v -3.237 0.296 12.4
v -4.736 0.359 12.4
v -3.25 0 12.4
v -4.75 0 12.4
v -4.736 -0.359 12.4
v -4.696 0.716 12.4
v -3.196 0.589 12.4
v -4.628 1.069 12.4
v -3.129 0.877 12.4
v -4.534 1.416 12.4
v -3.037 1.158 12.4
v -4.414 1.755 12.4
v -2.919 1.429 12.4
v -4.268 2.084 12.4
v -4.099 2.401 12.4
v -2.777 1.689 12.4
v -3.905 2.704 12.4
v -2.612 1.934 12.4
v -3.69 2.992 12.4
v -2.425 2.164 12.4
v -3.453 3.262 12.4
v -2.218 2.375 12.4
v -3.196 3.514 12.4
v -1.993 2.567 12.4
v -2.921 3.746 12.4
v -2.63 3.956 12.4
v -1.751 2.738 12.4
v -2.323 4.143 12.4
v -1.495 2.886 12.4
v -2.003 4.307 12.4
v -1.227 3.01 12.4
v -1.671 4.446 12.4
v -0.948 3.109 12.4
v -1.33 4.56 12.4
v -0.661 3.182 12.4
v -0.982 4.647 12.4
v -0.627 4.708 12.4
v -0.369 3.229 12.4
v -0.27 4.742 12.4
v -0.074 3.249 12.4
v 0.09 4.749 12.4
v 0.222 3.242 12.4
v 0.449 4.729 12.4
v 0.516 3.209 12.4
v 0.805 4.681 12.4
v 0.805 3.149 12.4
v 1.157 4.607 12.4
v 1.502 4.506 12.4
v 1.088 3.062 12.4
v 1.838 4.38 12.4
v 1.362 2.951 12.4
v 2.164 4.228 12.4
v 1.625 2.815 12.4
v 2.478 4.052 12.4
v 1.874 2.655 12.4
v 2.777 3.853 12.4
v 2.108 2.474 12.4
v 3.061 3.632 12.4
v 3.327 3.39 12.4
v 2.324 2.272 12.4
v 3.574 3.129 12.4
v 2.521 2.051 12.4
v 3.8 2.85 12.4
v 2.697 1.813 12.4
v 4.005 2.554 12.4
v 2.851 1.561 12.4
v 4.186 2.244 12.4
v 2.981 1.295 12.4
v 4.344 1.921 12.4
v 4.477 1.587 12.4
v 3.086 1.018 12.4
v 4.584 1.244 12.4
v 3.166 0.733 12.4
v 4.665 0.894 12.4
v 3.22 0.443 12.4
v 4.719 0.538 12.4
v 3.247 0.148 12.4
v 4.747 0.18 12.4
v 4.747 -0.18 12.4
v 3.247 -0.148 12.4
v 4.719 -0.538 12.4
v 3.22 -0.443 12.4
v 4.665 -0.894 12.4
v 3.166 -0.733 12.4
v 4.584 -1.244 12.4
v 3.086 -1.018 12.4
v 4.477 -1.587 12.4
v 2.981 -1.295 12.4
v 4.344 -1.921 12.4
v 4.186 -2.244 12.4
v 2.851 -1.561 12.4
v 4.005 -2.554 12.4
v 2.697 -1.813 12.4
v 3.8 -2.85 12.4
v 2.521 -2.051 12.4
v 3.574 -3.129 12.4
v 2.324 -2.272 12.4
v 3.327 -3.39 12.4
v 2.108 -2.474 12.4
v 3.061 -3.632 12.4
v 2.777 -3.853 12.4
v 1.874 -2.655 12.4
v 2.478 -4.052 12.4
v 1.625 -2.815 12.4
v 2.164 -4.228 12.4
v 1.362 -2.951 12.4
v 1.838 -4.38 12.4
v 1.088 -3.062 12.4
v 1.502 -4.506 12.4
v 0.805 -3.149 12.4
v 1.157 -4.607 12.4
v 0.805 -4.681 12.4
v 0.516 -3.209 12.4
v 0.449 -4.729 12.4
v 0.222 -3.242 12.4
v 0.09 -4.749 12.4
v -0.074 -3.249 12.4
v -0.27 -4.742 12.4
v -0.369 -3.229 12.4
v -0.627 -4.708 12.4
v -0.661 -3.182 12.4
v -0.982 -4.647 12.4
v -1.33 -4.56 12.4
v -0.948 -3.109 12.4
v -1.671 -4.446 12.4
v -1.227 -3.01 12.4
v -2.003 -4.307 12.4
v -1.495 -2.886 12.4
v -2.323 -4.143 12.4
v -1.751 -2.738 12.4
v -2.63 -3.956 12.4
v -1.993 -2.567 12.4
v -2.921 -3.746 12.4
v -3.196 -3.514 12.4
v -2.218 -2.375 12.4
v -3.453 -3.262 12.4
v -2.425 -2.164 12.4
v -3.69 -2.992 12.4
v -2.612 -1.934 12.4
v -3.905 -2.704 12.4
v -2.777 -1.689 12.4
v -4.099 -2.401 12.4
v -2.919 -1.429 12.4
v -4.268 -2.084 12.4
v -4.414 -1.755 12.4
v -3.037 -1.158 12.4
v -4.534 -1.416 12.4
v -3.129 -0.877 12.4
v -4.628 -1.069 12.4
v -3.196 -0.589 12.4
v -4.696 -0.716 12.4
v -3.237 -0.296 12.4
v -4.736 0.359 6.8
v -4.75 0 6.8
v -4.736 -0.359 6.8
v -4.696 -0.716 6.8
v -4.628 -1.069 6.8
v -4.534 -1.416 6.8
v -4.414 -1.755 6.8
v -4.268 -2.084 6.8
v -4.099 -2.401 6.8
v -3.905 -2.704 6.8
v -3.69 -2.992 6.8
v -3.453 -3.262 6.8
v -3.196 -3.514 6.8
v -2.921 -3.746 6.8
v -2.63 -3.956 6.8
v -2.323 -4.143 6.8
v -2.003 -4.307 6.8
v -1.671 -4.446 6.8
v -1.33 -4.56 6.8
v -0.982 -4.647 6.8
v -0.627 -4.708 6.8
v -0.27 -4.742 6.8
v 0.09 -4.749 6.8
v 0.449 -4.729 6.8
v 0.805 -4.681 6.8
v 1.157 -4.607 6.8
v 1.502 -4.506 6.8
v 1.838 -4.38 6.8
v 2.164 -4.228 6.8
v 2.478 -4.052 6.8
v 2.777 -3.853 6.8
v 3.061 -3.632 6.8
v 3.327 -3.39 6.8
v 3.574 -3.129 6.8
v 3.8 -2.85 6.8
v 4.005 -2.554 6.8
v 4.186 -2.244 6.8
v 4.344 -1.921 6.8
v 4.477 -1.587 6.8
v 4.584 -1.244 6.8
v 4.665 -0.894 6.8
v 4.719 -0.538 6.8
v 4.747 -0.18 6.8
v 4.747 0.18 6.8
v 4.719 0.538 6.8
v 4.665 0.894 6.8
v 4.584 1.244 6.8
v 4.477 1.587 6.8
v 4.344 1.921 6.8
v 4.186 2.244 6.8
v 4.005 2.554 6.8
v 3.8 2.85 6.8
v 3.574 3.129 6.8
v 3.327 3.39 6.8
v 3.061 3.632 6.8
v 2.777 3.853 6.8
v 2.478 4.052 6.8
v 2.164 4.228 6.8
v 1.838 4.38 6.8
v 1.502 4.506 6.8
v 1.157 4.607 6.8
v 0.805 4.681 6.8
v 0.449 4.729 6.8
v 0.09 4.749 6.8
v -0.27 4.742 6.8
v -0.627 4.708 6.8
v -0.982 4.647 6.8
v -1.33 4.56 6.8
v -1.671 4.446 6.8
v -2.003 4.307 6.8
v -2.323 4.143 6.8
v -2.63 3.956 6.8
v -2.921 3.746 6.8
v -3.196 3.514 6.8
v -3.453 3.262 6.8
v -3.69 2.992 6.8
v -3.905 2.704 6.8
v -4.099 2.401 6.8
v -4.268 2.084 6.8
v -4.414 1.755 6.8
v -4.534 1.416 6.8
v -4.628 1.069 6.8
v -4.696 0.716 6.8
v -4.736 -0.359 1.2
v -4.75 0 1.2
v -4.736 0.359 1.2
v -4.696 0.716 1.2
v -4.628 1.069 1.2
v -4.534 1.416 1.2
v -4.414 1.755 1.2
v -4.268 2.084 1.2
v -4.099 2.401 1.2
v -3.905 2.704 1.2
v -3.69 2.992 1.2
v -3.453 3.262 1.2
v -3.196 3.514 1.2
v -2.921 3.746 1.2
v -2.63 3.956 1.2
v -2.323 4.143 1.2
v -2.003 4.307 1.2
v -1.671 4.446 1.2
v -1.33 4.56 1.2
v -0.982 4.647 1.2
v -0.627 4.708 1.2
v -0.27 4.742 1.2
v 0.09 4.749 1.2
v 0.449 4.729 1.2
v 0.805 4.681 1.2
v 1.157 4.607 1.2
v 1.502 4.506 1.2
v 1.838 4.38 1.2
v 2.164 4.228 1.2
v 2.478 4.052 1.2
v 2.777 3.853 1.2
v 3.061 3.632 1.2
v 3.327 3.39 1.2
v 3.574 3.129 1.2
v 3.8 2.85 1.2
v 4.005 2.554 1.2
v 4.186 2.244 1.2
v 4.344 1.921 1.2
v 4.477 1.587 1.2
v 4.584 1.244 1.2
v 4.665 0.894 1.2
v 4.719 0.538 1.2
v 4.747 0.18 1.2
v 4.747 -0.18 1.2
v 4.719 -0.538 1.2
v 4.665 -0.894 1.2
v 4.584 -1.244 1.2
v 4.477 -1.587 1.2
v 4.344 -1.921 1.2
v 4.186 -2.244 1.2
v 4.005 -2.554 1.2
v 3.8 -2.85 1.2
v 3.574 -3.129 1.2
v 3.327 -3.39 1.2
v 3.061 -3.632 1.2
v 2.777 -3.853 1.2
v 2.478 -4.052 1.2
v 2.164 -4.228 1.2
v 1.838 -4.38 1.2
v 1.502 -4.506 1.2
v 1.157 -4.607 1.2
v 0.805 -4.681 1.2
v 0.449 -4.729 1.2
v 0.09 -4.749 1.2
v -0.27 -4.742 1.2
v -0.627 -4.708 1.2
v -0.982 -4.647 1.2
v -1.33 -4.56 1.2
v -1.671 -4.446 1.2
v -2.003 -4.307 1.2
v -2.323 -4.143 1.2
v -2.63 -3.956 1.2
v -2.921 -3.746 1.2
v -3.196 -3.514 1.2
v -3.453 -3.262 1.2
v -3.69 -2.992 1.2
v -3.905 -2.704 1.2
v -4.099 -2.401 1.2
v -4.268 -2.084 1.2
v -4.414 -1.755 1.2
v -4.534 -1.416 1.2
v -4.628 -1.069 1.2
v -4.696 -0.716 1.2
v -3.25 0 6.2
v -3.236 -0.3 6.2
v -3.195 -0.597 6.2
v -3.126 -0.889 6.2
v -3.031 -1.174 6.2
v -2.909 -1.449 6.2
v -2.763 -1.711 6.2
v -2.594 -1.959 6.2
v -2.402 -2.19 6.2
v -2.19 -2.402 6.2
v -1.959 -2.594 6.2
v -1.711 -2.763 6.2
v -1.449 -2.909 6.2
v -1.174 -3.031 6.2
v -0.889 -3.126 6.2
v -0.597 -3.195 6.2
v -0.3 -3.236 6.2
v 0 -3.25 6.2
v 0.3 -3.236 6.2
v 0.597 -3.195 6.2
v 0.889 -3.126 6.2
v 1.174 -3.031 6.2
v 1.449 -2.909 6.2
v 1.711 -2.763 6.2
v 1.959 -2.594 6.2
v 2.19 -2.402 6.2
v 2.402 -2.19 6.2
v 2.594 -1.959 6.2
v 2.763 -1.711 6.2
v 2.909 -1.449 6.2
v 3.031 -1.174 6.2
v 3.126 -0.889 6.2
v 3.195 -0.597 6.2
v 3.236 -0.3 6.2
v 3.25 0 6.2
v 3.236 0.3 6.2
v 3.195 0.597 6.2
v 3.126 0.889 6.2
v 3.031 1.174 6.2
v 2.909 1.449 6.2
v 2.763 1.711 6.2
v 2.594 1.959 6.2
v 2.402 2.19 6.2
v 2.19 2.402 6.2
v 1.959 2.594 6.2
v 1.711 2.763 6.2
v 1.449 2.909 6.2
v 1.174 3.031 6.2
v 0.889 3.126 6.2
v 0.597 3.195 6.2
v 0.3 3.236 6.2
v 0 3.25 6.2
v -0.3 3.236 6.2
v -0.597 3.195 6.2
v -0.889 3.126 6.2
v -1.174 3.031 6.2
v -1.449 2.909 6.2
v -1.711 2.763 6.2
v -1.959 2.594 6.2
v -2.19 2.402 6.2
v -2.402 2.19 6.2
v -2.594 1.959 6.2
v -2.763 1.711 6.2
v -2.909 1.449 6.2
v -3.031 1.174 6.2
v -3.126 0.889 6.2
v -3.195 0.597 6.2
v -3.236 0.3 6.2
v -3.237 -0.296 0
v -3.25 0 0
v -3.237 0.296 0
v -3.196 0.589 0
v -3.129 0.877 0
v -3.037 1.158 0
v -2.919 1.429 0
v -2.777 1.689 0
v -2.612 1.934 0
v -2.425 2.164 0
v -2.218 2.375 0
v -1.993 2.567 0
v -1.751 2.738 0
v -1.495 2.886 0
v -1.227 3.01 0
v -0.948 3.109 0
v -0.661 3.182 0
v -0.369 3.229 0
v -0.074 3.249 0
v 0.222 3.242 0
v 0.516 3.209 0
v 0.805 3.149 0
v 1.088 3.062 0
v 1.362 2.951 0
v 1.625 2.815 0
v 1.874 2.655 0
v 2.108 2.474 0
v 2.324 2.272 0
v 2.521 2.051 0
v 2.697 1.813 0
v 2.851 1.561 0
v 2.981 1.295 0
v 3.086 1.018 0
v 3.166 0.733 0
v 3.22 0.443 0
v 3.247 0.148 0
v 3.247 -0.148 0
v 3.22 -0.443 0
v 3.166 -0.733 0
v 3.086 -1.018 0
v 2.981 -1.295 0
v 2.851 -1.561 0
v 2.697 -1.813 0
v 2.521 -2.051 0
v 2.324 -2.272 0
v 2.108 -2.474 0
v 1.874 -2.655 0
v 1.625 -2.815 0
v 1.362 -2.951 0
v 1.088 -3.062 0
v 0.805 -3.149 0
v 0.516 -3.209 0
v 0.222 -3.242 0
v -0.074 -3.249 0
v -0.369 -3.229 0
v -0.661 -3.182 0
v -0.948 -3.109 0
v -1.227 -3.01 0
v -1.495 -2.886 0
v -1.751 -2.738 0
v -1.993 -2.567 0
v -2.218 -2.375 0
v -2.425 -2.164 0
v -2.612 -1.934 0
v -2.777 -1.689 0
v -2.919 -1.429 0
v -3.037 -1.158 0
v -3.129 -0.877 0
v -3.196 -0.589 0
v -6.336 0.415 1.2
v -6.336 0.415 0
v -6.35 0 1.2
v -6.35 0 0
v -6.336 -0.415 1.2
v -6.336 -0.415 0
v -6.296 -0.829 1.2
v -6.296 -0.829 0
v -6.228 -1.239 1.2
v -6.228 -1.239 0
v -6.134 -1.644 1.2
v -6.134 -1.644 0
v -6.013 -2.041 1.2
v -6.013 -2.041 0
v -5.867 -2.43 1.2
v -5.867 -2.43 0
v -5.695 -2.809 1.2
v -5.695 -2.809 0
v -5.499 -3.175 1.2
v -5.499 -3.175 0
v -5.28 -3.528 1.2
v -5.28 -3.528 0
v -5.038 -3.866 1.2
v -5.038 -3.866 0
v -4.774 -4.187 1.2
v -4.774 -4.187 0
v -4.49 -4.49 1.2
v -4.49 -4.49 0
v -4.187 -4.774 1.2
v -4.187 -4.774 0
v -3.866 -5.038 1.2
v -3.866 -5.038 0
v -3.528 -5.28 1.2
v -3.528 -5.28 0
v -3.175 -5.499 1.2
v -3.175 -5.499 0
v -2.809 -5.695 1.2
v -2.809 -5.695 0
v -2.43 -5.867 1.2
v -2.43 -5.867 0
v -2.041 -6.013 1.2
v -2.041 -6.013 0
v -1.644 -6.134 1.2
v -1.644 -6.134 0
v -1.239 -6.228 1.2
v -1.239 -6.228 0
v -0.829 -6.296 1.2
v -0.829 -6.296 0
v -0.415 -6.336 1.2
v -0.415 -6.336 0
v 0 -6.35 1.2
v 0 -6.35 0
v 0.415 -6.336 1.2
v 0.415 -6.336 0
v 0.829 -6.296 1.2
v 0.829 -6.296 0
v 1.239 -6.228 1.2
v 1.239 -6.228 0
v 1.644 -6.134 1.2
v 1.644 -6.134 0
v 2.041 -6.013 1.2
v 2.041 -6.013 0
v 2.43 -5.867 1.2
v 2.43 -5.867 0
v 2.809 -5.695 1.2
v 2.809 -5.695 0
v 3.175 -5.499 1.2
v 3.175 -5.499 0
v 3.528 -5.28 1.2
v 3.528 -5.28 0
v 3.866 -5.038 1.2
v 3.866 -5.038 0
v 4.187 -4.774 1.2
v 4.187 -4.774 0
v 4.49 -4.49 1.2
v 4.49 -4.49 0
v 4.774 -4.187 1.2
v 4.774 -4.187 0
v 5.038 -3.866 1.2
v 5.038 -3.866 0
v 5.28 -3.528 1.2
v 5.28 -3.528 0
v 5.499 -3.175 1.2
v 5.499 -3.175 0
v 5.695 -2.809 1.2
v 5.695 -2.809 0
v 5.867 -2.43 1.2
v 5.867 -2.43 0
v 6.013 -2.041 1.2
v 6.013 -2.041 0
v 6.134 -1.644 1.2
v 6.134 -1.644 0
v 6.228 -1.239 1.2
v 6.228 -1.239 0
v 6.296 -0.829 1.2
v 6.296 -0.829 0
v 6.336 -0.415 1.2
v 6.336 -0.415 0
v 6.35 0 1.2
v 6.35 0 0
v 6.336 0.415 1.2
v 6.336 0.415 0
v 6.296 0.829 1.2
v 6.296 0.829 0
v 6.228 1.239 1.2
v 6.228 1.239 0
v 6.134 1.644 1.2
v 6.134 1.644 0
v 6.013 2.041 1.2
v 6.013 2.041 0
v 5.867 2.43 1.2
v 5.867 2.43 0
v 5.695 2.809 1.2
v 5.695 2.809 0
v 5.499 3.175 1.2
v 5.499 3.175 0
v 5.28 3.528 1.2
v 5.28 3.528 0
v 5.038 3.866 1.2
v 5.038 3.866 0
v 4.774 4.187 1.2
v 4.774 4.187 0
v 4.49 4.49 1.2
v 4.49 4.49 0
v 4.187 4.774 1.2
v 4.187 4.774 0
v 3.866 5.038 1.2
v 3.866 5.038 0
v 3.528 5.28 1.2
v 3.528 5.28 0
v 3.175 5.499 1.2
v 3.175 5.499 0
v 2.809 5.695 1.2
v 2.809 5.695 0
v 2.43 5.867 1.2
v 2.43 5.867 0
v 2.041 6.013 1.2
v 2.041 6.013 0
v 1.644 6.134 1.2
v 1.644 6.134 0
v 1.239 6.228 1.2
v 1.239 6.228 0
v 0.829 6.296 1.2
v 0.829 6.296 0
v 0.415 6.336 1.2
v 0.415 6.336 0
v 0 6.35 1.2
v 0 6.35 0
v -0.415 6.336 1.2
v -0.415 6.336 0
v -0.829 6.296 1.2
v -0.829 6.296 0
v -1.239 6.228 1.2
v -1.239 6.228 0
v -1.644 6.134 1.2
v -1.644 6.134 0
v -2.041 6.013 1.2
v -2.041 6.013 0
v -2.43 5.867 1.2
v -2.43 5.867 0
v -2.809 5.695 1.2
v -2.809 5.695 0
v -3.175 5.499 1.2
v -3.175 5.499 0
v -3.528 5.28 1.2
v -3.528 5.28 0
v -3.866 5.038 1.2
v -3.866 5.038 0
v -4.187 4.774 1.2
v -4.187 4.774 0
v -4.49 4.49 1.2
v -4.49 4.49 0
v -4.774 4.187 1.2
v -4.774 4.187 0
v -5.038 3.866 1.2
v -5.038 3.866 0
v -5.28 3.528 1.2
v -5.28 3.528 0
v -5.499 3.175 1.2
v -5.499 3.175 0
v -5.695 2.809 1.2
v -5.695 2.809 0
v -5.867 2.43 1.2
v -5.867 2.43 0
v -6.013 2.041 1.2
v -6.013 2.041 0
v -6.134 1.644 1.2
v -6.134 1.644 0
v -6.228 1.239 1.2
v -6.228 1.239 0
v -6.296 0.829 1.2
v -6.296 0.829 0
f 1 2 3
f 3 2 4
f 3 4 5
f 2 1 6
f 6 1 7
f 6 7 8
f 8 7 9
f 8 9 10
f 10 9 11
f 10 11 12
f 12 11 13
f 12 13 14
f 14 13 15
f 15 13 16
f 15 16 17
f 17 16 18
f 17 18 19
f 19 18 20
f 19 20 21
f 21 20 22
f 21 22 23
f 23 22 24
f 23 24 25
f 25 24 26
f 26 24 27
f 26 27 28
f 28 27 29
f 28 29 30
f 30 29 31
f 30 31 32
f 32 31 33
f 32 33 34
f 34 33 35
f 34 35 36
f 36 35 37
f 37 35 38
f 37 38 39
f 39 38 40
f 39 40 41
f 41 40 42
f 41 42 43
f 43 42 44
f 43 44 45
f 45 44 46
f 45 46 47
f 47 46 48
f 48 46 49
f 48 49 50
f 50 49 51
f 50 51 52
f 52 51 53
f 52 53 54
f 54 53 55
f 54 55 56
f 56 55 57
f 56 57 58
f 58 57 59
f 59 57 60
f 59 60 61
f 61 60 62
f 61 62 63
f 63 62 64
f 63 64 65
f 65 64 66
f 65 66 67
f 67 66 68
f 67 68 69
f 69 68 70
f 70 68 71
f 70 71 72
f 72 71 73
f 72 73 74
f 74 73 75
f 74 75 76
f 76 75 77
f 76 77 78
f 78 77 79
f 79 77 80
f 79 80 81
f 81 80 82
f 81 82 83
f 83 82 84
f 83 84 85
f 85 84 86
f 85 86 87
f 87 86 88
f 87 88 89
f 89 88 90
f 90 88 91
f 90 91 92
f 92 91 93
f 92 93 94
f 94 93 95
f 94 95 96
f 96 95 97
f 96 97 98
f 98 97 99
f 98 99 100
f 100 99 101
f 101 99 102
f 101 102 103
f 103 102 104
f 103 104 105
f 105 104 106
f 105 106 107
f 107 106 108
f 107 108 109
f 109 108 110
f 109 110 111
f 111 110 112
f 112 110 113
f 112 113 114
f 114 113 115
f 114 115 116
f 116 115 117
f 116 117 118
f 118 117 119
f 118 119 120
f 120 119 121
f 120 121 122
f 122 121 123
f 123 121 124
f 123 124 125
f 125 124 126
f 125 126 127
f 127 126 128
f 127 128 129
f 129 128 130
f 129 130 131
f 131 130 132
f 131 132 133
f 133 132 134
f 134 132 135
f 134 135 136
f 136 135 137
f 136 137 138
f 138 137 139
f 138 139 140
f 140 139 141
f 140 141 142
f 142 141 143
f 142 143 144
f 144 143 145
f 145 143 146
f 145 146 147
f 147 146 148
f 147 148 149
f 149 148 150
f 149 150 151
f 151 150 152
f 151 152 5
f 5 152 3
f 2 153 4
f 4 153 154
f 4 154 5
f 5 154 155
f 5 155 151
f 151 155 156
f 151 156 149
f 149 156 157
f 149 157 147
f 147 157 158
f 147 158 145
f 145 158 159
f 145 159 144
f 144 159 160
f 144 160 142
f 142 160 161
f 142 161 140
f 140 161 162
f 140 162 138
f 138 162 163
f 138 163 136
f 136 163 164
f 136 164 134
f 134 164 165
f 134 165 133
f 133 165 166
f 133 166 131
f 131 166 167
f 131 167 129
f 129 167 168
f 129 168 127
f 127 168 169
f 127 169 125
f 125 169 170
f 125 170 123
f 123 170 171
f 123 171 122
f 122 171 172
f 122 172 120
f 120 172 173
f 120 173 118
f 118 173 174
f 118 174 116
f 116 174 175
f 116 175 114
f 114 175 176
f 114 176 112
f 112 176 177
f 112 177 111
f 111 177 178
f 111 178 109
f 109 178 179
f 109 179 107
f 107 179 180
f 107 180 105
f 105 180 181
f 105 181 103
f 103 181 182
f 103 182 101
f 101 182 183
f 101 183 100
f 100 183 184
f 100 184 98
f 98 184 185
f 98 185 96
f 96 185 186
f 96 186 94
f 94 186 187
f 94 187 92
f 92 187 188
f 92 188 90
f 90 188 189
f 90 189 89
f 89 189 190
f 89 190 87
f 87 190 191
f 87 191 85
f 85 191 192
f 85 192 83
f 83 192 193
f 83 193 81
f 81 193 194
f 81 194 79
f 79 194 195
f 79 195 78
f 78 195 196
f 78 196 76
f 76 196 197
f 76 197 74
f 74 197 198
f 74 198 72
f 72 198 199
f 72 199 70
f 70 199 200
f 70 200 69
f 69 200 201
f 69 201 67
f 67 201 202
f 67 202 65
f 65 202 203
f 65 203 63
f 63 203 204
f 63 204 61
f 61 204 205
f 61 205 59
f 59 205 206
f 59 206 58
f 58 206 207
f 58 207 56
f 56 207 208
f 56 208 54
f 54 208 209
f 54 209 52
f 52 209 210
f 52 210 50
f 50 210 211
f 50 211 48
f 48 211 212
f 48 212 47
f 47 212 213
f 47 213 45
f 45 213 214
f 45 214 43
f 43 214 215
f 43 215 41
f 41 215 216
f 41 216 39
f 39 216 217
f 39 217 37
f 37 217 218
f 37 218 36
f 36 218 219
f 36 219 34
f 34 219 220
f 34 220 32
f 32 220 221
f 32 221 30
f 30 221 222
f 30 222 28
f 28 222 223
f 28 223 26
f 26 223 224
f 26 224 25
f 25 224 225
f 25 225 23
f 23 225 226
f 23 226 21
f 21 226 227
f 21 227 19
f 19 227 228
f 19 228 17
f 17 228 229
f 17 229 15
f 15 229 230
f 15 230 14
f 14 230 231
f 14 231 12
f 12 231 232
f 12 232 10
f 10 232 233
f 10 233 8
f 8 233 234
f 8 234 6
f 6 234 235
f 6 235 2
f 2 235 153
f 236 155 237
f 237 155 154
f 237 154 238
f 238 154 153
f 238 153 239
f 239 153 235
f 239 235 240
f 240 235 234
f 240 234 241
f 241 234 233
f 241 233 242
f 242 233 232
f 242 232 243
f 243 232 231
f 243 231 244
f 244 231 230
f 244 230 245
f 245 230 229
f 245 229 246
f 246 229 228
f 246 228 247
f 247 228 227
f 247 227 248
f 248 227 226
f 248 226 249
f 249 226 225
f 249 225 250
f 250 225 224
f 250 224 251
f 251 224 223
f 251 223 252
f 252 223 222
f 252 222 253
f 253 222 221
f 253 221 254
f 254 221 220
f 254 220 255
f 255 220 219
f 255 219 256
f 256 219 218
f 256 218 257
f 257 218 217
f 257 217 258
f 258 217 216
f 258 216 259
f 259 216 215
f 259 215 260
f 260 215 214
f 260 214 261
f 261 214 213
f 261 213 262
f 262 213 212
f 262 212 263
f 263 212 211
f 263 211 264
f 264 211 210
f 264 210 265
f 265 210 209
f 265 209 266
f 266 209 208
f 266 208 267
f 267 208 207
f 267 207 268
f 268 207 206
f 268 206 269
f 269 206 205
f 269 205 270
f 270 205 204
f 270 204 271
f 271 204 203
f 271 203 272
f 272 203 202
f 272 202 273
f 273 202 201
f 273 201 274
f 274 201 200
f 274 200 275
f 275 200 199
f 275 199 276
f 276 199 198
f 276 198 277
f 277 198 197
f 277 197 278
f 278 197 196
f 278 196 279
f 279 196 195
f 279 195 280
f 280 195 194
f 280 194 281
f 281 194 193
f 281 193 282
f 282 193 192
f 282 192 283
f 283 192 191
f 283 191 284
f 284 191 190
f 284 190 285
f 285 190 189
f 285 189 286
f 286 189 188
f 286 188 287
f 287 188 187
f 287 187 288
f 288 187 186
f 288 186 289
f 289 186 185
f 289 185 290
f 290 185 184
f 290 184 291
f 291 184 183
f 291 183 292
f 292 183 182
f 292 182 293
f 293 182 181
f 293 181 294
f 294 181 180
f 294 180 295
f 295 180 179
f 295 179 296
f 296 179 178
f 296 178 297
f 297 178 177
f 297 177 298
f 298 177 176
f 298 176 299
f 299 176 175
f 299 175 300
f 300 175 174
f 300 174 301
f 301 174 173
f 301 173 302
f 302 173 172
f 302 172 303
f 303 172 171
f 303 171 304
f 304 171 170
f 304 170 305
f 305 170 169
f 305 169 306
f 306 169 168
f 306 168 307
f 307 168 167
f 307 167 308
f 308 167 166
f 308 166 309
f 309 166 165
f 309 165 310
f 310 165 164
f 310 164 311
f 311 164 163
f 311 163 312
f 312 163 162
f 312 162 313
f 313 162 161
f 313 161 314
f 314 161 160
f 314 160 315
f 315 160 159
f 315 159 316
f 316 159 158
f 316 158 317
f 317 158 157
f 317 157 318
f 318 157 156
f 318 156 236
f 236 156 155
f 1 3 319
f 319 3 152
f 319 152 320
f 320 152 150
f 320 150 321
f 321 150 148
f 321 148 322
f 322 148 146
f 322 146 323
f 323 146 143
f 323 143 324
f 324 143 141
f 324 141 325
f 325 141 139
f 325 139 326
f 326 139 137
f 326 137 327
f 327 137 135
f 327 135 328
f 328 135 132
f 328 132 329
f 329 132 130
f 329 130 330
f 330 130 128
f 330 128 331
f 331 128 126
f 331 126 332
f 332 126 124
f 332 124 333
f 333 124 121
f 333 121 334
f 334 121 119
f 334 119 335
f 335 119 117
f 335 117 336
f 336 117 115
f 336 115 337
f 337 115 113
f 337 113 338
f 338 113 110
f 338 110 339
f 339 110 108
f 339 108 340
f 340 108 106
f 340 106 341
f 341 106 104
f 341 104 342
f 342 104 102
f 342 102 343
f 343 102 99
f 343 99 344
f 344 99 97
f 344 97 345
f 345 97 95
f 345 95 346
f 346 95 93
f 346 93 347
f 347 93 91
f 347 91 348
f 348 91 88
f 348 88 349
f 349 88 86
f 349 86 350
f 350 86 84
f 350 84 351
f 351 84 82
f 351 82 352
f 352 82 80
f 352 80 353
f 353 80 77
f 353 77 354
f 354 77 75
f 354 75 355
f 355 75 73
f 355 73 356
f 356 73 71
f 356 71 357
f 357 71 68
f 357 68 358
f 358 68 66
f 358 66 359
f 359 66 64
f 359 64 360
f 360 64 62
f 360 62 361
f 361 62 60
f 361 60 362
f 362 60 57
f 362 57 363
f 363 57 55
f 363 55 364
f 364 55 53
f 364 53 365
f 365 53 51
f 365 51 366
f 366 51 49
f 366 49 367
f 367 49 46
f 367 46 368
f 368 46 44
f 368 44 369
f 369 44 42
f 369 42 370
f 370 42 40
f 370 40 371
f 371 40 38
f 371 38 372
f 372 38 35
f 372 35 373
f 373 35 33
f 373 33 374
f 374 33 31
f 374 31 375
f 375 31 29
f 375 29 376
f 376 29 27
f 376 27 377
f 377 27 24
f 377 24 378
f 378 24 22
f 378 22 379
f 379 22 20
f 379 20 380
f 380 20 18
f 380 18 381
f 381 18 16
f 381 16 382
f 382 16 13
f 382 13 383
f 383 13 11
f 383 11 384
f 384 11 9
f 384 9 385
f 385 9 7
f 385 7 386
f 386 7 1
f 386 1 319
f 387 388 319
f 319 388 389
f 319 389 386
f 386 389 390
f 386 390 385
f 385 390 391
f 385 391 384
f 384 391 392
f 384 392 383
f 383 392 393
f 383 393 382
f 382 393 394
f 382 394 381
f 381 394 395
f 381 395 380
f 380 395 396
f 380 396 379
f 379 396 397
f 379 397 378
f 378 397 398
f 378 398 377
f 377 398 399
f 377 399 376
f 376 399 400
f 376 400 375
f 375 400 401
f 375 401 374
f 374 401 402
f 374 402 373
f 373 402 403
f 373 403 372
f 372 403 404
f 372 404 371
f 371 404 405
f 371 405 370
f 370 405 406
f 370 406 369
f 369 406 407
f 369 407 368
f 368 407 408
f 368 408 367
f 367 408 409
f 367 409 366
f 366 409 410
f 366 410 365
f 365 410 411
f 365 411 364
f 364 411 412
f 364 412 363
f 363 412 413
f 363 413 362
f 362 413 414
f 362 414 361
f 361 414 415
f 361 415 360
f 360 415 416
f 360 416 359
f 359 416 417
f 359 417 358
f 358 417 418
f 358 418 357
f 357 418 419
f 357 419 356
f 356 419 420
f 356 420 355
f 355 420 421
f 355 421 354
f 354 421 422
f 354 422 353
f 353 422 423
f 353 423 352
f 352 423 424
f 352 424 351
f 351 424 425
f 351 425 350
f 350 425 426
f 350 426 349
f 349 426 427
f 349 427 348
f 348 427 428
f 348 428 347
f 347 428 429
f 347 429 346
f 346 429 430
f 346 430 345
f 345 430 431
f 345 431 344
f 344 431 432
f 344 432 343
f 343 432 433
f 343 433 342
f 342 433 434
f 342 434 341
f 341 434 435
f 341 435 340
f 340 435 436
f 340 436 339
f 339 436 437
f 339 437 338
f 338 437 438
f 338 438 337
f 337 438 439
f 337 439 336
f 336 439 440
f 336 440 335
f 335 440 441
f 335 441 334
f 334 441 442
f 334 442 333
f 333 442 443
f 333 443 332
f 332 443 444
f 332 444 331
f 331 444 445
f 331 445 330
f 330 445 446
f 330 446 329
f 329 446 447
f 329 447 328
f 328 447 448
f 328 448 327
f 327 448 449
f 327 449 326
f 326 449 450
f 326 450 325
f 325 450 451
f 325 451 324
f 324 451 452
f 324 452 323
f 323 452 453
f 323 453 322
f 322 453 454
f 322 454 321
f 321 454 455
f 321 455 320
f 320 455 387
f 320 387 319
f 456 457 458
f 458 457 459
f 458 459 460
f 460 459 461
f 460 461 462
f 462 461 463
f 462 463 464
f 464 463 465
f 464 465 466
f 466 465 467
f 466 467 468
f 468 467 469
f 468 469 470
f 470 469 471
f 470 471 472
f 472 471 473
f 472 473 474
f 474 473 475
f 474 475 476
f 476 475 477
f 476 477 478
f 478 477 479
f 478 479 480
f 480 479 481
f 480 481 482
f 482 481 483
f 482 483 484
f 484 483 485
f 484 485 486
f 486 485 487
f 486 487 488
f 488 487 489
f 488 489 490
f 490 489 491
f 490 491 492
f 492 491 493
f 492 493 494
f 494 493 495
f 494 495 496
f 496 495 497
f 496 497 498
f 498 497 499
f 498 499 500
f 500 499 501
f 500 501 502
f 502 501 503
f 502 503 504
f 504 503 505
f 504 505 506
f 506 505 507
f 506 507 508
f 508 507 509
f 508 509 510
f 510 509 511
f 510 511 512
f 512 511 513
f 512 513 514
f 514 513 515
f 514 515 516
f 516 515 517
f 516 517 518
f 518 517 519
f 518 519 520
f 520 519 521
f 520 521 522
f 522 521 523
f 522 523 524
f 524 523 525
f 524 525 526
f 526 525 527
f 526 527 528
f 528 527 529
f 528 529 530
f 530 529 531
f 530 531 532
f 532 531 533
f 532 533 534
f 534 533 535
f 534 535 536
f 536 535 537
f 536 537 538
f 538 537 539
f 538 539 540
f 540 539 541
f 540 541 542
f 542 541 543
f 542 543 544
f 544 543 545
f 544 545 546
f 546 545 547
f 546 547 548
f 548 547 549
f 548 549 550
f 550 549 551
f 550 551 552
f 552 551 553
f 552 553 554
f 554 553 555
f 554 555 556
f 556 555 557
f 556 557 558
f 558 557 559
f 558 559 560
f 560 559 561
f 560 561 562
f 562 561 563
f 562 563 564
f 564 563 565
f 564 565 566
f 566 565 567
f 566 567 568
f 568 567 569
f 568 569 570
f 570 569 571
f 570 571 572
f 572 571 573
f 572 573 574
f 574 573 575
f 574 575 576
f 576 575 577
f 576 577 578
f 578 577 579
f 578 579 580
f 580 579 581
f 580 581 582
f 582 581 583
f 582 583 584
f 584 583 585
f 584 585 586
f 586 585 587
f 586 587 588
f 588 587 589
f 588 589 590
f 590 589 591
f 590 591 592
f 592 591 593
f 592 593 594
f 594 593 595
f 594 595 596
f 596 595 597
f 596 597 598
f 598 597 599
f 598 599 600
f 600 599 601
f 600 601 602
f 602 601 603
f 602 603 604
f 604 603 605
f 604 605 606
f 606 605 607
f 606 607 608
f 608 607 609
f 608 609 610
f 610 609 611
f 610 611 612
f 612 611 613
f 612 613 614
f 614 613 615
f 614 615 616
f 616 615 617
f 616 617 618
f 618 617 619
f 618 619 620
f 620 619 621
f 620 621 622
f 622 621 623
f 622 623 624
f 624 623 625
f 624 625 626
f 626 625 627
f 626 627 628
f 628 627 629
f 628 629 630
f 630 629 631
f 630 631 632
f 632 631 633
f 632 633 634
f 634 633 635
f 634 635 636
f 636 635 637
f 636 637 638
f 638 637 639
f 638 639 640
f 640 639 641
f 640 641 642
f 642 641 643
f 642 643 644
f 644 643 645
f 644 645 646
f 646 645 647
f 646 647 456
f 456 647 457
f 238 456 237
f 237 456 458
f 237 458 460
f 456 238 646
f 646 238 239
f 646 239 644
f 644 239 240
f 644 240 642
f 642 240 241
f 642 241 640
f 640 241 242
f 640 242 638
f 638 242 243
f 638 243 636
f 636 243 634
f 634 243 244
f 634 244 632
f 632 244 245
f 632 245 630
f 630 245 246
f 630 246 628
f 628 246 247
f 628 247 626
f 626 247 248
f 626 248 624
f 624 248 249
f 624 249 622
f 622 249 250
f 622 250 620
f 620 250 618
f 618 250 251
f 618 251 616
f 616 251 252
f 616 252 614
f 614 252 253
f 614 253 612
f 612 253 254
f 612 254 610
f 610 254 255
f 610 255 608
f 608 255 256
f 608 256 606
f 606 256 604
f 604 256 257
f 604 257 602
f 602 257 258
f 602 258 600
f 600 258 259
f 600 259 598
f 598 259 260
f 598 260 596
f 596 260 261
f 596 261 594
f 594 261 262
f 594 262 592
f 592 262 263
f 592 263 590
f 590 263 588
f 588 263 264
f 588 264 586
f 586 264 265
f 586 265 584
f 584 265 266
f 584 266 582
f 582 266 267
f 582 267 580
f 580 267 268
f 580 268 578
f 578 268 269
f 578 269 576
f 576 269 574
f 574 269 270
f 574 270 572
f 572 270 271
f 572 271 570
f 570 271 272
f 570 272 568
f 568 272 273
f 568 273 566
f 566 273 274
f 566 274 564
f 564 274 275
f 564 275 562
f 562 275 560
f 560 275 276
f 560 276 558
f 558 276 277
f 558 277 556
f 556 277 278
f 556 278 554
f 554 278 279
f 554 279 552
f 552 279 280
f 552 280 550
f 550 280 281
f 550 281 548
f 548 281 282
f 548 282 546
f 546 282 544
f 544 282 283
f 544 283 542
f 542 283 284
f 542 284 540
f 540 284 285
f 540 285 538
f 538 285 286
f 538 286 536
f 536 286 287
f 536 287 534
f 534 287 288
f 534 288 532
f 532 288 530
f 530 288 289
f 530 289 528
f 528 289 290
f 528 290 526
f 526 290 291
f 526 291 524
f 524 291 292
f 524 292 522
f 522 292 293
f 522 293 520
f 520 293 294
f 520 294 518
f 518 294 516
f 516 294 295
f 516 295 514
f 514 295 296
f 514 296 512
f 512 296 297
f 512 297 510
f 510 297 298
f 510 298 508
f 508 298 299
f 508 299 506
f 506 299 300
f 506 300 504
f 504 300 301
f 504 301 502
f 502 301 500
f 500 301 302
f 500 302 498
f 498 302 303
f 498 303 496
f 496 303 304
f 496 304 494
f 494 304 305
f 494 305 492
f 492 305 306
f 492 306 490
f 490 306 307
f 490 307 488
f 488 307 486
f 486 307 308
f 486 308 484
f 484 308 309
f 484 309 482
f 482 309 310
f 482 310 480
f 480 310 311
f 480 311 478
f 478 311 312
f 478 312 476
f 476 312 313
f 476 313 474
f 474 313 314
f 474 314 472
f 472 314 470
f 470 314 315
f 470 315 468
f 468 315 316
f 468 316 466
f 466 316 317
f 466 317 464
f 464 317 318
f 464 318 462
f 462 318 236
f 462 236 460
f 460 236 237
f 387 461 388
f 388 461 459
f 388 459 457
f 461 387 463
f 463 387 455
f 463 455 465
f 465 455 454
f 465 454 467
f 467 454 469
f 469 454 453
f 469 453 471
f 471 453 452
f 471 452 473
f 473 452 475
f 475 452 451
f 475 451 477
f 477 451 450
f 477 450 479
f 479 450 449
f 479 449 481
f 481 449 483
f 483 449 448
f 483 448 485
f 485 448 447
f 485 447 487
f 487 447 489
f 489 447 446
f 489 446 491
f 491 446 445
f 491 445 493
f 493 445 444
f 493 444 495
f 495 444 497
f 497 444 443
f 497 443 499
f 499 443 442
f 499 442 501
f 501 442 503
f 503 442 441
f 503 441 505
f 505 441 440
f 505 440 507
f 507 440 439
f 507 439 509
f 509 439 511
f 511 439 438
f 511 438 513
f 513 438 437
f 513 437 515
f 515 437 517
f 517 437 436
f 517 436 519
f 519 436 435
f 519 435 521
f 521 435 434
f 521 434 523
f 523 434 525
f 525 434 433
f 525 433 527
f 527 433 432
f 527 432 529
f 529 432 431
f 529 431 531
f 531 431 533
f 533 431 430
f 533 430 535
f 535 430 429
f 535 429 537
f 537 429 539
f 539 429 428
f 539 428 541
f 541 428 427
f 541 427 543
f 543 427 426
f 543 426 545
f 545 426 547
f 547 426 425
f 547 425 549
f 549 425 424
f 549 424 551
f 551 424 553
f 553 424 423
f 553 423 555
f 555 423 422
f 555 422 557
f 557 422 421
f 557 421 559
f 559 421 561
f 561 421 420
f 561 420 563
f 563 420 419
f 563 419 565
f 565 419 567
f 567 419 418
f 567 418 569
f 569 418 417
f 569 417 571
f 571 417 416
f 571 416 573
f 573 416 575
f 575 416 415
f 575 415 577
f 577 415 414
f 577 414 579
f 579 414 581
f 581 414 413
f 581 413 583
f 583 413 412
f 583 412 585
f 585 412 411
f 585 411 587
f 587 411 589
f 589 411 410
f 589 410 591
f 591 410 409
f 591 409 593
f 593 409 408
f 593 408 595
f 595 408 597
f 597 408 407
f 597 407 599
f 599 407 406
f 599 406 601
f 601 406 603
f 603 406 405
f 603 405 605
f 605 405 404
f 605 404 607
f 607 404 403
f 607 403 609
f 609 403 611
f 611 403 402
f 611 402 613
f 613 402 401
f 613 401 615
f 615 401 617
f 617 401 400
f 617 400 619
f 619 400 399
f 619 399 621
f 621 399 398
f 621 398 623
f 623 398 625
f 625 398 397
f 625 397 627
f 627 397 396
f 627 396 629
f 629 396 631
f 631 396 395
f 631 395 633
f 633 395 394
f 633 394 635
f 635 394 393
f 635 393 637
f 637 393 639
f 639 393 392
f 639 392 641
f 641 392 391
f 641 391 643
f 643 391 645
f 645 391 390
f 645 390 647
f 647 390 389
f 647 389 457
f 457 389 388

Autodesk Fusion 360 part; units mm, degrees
sketch "Sketch1" plane through (0, 0, 0) normal (0, 0, 1) x (1, 0, 0)
  circle A0 centre (0, 0) radius 3.25
  circle A1 centre (0, 0) radius 4.75
  circle A2 centre (0, 0) radius 6.35
  dimension "d1" = 6.5
  dimension "d2" = 9.5
  dimension "d3" = 12.7
extrude "Extrude1" add sketch "Sketch1" along normal blind 1.2 contours A2
extrude "Extrude2" add sketch "Sketch1" along normal blind 13.6 contours A1
extrude "Extrude3" cut 1 faces at (4.2202, -0.3974, 13.6) along direction (0, 0, -1) blind 1.2
